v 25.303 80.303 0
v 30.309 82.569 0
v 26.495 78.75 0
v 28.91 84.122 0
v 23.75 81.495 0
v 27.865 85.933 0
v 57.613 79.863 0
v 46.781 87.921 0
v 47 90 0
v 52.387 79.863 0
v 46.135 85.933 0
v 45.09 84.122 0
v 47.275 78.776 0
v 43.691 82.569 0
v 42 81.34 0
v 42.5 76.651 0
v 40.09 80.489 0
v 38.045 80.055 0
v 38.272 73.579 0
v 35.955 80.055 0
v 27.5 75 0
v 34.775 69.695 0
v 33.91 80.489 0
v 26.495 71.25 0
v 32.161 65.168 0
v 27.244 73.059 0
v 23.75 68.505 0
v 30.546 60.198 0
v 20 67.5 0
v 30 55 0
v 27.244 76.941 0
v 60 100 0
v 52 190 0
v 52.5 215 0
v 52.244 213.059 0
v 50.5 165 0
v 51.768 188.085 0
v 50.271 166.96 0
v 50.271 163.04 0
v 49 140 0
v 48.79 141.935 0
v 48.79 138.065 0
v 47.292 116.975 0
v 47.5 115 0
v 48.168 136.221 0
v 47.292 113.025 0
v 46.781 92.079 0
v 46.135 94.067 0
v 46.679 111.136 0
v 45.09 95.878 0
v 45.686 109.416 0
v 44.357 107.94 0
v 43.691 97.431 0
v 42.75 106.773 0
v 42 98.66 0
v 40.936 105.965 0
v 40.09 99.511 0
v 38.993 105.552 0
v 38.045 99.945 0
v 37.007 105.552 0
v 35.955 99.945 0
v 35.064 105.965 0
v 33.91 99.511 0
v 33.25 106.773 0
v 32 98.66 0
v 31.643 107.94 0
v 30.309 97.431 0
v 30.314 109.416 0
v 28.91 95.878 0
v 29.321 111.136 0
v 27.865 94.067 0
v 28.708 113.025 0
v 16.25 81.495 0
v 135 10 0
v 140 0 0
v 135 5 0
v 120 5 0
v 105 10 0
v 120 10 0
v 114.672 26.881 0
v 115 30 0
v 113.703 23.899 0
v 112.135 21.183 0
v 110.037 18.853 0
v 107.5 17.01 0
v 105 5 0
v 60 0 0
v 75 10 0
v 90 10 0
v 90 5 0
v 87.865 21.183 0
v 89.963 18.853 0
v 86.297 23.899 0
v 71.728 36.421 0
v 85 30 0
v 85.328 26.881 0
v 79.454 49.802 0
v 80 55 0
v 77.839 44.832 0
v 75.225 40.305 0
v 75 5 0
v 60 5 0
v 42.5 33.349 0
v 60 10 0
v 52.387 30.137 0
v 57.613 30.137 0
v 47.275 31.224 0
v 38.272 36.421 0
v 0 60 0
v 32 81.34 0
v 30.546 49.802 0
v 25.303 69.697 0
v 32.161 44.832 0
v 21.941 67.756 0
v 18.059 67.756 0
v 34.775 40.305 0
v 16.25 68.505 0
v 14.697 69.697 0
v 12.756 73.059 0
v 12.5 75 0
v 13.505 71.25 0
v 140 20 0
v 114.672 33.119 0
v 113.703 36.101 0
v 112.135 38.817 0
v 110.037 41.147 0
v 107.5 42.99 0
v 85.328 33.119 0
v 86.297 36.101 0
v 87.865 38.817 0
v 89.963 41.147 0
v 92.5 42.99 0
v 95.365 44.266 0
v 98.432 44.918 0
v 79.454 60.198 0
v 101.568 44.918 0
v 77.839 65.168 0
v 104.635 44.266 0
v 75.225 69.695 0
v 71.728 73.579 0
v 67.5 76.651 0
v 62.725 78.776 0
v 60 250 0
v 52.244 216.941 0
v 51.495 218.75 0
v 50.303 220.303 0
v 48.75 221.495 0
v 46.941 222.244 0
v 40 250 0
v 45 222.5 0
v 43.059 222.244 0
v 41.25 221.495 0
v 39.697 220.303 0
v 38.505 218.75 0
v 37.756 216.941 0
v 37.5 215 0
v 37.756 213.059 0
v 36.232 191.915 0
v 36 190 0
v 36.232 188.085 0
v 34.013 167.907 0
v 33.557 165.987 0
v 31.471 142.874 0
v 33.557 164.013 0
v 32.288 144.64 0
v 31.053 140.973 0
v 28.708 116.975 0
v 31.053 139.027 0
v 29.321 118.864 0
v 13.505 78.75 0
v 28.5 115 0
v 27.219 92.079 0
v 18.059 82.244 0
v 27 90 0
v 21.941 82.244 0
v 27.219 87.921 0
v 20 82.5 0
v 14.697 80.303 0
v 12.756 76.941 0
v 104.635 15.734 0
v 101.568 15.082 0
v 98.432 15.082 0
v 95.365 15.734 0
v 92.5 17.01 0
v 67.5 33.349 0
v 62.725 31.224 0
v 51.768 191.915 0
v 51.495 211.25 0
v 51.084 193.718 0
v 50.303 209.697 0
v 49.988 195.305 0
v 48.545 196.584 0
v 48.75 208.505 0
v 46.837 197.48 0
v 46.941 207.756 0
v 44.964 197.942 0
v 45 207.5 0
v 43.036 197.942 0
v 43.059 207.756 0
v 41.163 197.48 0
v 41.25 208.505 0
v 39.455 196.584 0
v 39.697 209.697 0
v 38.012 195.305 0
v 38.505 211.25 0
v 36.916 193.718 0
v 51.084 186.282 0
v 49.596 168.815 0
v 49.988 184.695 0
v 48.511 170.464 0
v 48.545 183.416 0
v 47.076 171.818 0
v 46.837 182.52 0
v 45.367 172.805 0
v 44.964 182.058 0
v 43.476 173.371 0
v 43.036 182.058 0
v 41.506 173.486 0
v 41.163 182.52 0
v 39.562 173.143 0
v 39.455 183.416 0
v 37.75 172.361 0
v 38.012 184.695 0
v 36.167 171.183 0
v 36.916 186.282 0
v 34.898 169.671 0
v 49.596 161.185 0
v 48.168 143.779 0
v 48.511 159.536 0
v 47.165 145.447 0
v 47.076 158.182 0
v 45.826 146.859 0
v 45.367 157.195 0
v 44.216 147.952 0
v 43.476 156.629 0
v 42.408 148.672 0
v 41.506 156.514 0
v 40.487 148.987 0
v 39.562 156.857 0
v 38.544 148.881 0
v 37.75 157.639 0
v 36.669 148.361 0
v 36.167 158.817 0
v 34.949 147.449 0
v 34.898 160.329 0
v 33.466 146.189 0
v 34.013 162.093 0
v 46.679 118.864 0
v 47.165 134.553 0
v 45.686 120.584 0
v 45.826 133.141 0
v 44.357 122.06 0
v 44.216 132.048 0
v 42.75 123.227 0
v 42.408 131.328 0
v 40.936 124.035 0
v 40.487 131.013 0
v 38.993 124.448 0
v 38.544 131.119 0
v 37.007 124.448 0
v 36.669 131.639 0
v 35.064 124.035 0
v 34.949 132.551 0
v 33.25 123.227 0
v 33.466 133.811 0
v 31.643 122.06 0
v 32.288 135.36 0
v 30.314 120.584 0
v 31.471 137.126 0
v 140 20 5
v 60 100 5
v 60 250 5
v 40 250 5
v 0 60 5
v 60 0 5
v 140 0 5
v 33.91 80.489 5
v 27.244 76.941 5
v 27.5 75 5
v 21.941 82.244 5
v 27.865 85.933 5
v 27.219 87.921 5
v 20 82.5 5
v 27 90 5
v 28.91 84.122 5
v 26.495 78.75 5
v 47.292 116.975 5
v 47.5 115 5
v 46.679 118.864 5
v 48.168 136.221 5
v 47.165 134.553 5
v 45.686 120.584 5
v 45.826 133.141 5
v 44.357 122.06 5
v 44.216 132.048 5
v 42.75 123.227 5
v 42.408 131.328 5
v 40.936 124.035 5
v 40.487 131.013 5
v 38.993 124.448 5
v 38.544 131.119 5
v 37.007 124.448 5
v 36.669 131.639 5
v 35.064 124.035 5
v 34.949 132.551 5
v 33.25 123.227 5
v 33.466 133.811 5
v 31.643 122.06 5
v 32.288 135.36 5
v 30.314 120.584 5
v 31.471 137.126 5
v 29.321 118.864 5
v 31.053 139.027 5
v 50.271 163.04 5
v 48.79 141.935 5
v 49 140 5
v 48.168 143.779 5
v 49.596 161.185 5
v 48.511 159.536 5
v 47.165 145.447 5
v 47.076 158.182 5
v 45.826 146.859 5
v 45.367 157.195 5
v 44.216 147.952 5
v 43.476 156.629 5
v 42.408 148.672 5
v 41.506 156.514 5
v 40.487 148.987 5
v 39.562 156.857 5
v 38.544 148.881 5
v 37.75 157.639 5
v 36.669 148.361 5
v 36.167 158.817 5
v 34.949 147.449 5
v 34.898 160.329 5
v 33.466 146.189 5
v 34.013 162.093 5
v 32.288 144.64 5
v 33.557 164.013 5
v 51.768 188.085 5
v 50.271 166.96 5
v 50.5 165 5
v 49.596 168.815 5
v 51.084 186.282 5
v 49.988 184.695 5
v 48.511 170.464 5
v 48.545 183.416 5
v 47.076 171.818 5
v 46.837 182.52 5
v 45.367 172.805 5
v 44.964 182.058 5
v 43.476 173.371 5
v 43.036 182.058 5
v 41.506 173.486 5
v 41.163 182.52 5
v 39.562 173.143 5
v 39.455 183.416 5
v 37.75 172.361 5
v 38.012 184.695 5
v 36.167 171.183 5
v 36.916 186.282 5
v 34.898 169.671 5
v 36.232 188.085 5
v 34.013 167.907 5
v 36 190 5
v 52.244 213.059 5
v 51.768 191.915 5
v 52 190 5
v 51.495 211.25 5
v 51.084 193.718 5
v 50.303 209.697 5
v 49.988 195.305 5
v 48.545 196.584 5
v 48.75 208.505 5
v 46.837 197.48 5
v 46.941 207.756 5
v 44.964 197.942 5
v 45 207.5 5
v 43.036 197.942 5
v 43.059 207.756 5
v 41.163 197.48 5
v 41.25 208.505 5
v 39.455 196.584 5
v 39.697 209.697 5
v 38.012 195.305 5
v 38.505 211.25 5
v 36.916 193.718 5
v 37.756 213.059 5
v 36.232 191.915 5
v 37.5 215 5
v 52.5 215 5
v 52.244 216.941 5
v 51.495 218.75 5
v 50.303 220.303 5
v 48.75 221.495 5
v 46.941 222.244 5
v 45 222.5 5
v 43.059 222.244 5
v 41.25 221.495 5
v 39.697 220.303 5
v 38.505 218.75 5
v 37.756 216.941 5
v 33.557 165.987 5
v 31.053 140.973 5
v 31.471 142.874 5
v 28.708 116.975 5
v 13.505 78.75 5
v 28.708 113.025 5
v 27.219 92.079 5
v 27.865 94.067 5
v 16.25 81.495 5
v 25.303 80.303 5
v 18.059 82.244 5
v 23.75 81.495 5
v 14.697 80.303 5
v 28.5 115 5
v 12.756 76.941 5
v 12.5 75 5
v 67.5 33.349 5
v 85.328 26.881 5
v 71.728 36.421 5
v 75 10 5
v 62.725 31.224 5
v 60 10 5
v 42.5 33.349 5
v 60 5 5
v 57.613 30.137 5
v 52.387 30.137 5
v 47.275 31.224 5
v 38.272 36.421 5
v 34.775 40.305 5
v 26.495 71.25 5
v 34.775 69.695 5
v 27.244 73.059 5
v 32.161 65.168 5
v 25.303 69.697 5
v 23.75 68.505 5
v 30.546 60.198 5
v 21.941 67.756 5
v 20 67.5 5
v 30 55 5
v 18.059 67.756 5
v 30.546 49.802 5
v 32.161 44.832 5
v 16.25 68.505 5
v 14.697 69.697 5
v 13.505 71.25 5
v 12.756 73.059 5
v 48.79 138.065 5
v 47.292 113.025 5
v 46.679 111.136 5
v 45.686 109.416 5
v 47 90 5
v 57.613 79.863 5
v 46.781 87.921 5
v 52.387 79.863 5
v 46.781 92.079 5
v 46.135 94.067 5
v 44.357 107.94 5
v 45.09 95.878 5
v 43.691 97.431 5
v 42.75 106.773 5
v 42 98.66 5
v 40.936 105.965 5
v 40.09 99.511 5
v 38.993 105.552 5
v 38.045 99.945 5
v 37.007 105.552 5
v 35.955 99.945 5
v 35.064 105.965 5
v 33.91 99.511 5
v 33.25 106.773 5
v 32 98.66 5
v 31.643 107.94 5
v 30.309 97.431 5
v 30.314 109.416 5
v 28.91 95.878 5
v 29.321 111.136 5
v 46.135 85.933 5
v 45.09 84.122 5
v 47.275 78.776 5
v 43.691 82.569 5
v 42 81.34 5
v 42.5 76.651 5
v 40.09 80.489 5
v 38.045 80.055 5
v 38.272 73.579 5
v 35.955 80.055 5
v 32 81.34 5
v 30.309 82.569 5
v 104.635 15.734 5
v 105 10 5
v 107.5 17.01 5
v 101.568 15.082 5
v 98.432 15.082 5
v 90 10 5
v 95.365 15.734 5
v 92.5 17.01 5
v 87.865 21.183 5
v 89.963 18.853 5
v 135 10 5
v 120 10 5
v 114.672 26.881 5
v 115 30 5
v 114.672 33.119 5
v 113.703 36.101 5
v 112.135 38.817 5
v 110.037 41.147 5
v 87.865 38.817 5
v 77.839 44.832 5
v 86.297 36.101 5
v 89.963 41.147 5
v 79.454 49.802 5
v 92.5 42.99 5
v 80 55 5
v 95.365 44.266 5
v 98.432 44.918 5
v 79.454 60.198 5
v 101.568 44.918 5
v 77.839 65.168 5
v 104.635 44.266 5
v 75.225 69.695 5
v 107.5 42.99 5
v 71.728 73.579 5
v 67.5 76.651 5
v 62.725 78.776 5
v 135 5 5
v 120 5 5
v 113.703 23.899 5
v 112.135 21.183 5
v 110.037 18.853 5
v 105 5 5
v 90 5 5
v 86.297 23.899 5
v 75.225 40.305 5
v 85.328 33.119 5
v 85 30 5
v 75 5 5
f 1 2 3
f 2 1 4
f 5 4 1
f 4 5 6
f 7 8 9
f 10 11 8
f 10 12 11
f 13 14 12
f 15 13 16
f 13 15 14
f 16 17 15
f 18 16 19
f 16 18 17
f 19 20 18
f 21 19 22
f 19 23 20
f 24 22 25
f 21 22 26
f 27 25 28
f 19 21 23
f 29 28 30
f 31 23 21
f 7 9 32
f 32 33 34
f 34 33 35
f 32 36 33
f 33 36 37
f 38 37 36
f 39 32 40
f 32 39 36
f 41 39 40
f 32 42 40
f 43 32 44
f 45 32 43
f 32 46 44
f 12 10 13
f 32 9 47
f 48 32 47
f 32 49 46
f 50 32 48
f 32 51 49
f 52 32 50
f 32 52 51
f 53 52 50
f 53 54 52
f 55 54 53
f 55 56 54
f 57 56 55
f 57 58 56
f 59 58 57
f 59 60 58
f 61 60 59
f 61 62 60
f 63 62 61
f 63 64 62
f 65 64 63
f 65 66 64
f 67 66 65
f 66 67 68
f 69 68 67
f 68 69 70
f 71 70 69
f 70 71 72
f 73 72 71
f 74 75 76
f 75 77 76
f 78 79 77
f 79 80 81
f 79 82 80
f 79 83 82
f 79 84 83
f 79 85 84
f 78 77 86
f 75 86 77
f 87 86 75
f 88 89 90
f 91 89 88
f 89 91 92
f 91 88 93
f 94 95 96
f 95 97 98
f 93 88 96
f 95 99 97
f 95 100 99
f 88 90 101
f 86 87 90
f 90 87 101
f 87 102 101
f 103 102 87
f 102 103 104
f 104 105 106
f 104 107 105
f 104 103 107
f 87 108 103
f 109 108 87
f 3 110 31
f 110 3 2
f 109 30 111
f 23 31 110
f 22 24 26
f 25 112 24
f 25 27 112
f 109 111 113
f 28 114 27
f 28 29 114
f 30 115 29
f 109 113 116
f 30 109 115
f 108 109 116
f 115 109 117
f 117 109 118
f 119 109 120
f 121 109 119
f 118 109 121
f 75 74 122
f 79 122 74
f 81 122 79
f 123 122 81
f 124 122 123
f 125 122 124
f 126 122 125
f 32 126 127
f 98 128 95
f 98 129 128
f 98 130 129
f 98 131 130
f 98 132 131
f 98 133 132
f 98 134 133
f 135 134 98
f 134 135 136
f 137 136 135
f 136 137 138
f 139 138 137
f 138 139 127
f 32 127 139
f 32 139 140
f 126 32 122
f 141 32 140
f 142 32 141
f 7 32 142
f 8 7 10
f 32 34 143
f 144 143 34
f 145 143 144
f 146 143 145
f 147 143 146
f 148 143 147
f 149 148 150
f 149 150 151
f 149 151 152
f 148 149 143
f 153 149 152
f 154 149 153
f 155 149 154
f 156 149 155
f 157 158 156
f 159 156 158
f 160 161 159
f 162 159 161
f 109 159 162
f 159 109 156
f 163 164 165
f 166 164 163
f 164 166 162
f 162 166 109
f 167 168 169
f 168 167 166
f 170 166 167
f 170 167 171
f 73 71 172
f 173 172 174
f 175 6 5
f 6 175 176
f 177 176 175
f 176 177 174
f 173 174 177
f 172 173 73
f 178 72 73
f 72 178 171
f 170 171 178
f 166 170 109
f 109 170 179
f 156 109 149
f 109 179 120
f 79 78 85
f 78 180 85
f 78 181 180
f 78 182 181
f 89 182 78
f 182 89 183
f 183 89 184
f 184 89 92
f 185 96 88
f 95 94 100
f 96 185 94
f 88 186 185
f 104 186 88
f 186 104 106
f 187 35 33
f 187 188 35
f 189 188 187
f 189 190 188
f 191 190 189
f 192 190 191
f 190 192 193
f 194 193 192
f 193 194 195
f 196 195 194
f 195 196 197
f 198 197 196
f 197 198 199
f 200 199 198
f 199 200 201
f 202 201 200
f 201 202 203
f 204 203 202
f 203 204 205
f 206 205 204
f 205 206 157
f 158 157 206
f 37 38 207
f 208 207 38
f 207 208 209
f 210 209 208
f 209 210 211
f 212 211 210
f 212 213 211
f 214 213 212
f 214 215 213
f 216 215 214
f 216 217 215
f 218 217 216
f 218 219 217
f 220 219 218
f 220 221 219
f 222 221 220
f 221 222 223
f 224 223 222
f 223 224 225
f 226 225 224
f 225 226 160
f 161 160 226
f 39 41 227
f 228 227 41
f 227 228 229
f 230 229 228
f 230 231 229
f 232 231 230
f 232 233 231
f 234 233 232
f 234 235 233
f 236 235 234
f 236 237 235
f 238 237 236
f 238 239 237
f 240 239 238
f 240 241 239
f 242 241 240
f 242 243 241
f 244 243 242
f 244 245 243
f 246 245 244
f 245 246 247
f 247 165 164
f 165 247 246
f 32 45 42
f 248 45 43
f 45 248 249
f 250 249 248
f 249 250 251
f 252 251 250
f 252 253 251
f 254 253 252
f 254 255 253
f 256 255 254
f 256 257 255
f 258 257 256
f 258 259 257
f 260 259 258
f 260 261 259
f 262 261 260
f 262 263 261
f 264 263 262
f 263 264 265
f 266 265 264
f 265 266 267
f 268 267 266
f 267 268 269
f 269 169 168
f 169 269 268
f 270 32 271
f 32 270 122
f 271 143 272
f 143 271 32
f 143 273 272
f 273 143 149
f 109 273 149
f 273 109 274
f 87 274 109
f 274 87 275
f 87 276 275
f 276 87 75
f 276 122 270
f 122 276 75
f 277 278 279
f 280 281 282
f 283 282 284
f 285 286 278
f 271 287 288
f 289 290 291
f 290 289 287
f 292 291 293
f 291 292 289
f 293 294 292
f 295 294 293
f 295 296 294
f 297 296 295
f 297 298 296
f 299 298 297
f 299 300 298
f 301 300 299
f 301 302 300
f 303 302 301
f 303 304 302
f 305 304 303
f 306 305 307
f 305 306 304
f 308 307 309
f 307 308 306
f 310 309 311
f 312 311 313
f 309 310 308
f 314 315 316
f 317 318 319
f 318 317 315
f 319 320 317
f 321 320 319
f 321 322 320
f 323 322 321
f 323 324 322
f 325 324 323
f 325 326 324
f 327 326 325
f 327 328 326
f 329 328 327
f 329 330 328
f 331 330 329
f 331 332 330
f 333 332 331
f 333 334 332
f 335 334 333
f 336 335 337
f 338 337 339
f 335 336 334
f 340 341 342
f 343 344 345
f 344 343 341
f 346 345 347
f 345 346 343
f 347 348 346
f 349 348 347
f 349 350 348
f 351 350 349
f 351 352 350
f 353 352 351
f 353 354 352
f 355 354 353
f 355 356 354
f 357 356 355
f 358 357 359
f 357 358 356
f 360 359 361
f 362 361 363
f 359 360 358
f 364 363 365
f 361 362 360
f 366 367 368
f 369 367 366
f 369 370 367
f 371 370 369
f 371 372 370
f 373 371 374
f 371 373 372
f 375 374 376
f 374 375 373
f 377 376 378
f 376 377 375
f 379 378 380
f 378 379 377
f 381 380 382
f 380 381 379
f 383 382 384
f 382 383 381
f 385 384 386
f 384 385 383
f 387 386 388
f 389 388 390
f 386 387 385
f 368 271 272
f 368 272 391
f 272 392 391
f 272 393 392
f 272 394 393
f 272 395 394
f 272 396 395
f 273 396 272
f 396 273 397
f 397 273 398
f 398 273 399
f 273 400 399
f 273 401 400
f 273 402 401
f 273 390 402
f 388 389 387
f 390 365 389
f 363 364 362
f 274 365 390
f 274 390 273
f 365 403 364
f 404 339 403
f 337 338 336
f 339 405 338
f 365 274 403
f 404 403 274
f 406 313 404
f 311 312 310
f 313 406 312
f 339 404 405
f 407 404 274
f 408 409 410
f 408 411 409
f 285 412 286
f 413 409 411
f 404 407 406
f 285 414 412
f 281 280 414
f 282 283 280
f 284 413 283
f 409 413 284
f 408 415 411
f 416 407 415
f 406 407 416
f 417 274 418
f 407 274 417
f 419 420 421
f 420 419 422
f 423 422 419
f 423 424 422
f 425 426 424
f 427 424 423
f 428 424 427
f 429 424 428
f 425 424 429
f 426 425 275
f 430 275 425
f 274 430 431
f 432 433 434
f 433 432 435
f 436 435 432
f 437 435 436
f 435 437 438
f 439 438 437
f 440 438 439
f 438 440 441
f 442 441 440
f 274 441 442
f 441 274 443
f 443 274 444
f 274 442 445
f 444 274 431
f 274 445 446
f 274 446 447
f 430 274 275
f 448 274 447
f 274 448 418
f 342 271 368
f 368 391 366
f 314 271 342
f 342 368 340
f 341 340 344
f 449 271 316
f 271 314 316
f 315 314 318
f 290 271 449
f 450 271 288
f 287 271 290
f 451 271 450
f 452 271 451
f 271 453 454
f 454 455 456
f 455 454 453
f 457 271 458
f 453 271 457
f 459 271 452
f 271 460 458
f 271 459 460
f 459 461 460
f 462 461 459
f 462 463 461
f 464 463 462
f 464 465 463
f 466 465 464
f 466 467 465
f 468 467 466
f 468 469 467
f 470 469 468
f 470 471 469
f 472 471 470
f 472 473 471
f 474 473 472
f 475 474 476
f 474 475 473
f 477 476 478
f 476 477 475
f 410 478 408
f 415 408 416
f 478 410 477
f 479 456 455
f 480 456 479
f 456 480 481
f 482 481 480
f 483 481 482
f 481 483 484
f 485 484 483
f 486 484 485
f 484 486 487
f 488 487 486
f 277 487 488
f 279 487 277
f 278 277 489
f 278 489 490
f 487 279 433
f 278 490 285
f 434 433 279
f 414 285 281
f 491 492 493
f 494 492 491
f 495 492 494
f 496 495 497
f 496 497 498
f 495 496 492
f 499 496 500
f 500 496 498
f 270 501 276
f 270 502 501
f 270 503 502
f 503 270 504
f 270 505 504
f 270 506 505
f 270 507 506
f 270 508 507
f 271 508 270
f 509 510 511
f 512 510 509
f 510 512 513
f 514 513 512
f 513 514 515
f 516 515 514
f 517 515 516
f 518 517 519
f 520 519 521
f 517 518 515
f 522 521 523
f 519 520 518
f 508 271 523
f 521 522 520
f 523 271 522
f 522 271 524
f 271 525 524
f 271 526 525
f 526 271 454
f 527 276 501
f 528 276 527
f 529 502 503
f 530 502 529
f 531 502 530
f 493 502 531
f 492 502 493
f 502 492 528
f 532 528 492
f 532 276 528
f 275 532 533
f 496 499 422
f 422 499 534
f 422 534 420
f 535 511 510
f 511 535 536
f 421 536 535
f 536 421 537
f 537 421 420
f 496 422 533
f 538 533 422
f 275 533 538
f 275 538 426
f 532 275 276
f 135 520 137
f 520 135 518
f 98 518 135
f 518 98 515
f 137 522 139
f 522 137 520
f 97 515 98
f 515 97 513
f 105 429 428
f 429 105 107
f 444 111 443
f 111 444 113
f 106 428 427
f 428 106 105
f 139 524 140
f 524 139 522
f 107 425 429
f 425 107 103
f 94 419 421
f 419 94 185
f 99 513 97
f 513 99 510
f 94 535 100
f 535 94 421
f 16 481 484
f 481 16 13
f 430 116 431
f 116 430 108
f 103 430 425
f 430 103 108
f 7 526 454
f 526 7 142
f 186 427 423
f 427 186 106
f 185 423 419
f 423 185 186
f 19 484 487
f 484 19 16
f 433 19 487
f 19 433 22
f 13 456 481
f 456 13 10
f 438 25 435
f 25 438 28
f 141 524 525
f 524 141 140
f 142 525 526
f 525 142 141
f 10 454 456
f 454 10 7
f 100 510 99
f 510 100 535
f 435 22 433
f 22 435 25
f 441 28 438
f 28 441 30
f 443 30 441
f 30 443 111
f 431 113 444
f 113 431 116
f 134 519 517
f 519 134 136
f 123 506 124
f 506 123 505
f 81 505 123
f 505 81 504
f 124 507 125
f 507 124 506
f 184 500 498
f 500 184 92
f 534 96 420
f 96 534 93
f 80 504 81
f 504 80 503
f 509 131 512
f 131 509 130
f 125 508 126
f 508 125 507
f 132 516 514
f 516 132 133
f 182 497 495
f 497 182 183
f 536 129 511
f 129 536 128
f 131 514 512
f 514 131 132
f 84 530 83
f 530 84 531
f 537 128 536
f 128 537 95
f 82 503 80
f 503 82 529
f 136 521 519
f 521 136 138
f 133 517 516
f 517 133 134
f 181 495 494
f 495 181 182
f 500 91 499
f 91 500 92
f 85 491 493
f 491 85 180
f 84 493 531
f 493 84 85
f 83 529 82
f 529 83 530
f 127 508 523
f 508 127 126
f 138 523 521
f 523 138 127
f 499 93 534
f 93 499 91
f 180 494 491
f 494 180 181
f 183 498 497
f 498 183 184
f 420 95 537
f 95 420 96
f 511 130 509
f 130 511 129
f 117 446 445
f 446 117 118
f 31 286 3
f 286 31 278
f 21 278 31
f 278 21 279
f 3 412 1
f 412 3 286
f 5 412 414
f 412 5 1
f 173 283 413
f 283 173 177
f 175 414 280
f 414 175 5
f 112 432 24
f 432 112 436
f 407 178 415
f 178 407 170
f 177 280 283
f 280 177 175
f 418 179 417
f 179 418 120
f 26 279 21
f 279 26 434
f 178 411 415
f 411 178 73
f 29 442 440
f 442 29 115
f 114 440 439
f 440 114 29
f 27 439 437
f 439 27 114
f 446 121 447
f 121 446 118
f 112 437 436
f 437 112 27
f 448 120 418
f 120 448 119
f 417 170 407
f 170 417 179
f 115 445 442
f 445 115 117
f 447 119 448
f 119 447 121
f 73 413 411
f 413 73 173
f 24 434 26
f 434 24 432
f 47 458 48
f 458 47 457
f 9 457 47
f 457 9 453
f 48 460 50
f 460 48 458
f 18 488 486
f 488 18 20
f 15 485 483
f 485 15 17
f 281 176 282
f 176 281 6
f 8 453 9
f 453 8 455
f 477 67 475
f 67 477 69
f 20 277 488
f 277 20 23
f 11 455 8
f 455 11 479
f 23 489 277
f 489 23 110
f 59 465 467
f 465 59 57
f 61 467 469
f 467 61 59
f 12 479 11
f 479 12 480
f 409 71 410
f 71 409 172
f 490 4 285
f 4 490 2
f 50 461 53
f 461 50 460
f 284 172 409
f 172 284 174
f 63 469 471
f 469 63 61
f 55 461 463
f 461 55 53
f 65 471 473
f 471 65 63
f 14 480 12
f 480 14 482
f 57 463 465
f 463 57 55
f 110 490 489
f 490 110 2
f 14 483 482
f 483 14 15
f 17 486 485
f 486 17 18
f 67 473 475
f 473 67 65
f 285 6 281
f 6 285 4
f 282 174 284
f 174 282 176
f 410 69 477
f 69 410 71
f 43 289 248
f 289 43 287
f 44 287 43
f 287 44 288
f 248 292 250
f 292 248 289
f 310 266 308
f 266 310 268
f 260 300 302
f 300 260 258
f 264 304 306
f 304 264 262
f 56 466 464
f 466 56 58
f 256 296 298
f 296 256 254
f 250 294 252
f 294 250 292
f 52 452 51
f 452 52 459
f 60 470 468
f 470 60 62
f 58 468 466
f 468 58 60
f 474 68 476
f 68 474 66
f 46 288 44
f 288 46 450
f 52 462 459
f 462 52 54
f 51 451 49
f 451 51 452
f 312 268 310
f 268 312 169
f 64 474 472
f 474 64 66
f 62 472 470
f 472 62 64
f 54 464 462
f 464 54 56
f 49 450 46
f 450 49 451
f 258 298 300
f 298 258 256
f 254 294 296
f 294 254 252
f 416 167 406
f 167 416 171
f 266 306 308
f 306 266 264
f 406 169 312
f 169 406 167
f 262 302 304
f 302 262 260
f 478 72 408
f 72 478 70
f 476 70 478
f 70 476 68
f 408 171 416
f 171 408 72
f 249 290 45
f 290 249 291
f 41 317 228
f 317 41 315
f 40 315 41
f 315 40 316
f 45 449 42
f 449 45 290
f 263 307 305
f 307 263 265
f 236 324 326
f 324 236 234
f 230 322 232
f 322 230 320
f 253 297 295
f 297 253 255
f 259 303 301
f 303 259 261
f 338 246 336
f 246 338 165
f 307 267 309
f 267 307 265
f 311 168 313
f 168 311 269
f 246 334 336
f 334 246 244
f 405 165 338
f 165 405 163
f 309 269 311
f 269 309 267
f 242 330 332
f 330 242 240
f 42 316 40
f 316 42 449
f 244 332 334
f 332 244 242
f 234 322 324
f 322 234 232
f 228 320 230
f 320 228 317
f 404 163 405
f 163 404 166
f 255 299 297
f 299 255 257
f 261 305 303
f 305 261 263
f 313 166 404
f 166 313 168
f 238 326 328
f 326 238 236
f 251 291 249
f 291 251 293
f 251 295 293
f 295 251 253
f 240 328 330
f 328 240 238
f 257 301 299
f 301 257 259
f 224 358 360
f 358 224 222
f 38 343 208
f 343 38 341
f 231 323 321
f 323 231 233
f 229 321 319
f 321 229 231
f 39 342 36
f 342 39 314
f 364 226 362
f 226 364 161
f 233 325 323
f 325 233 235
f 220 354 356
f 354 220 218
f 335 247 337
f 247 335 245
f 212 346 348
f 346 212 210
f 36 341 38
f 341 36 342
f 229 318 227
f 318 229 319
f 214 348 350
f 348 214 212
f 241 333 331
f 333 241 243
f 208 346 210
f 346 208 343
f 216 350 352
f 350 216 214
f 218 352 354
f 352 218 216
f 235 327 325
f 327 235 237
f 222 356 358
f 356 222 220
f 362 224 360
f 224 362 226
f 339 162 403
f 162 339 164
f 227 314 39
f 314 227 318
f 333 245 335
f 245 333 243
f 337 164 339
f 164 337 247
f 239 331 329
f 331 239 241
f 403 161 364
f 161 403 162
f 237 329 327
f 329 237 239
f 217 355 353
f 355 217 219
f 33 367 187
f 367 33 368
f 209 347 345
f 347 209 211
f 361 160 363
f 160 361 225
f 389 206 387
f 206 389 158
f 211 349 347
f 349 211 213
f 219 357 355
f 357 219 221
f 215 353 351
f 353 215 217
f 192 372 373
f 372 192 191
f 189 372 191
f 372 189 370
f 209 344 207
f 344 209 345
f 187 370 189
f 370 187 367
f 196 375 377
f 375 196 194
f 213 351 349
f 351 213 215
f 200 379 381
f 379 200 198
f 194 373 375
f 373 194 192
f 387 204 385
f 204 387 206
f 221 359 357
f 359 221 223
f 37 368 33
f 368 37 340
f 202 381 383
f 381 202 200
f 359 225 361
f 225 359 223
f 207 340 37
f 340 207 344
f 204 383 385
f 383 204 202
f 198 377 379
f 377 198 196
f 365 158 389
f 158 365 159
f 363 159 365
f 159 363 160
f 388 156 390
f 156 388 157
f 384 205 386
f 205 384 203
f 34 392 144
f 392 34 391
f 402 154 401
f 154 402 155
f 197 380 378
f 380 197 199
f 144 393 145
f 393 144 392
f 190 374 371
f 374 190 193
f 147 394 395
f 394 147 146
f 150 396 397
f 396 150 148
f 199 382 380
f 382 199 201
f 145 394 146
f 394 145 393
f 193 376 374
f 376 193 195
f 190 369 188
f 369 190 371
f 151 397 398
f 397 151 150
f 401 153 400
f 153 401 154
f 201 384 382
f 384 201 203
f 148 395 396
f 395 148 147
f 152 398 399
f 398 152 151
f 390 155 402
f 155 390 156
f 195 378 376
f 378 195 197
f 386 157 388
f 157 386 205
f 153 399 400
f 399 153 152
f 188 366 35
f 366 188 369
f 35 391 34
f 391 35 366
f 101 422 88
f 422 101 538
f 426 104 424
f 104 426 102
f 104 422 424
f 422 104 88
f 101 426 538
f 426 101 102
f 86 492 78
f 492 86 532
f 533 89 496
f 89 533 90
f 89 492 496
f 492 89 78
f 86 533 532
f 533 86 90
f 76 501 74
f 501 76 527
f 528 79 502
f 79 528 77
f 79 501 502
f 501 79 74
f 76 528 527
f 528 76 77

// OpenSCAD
difference(){
linear_extrude(5)
polygon(points=[
[60,0],
[140,0],
[140,20],
[60,100],
[60,250],
[40,250],
[0,60
]
]);

color("red")
translate([55,55,0])
cylinder(h=100,d=50,center=true);


color("red")
translate([100,30,0])
cylinder(h=100,d=30,center=true);


color("red")
translate([20,75,0])
cylinder(h=100,d=15,center=true);

color("red")
translate([37,90,0])
cylinder(h=100,d=20,center=true);


color("red")
translate([38,115,0])
cylinder(h=100,d=19,center=true);

color("red")
translate([40,140,0])
cylinder(h=100,d=18,center=true);


color("red")
translate([42,165,0])
cylinder(h=100,d=17,center=true);

color("red")
translate([44,190,0])
cylinder(h=100,d=16,center=true);



color("red")
translate([45,215,0])
cylinder(h=100,d=15,center=true);

color("blue")
translate([60,5,0])
cube([15,5,10]);

color("blue")
translate([60+15+15,5,0])
cube([15,5,10]);

color("blue")
translate([60+15+15+15+15,5,0])
cube([15,5,10]);}
